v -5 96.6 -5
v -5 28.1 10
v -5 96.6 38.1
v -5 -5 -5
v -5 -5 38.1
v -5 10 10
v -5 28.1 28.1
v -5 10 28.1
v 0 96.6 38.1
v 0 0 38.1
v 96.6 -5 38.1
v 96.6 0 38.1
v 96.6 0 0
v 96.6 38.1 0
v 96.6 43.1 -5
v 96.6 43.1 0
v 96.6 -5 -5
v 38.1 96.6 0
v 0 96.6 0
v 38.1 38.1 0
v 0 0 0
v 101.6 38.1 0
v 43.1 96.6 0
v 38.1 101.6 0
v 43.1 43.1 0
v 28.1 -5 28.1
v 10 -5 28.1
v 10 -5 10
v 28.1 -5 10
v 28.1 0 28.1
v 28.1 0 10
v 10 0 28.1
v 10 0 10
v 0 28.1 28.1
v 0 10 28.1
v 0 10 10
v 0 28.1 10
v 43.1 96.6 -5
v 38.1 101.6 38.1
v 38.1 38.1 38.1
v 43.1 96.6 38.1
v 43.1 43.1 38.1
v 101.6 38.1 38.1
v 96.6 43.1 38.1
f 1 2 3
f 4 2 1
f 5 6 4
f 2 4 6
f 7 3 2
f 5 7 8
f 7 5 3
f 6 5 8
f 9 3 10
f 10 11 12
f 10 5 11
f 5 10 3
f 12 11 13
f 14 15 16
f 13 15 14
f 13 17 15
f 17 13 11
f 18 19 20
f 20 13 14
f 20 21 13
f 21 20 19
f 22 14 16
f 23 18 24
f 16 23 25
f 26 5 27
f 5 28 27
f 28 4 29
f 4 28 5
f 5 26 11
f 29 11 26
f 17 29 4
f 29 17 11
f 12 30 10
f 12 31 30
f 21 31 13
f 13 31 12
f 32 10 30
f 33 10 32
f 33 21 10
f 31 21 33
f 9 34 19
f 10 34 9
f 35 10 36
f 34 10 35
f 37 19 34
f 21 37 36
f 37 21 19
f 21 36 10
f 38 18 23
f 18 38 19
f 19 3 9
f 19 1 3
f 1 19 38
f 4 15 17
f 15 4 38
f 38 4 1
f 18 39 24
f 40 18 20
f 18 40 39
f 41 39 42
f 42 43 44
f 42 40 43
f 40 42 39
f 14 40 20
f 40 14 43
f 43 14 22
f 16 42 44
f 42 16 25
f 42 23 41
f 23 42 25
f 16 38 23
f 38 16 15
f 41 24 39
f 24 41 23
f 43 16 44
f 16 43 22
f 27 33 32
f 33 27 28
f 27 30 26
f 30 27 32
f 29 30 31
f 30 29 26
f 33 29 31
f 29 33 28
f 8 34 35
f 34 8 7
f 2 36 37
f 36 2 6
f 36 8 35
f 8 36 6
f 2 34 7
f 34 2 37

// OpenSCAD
e = 0.01;

l = 4 * 25.4;
h = 1.5 * 25.4;
t = 5;

w = 1.5 * 25.4;
r = 7;


difference() {
union() {
    translate([-t, -t, 0]) cube([l, t, h]);
    translate([-t, -t, 0]) cube([t, l, h]);
    translate([-t, -t, -t]) cube([l, l, t]);
    translate([w, w, 0]) cube([l-w, t, h]);
    translate([w, w, 0]) cube([t, l-w, h]);
}

translate([0, 0, -t-e]) linear_extrude(h + 10) polygon([[0, l + w], [l + w, 0], [l + w, l + w]]);
translate([10, -t-e, 10]) cube([w - 20, 2 * t, h - 20]);
translate([-t-e, 10, 10]) cube([2 * t, w - 20, h - 20]);

/*
translate([45, e, h/2 + 7]) rotate([90, 0, 0]) cylinder(2 * t, r, r);
translate([55, 500 + e, h/2 - 8]) rotate([90, 0, 0]) cylinder(2 * t + 1000, r, r);
translate([65, 500 + e, h/2 + 7]) rotate([90, 0, 0]) cylinder(2 * t + 1000, r, r);
translate([75, 500 + e, h/2 - 8]) rotate([90, 0, 0]) cylinder(2 * t + 1000, r, r);
translate([85, 500 + e, h/2 + 7]) rotate([90, 0, 0]) cylinder(2 * t + 1000, r, r);

translate([-t-e, 45, h/2 + 7]) rotate([0, 90, 0]) cylinder(2 * t, r, r);
translate([-t-e, 55, h/2 - 8]) rotate([0, 90, 0]) cylinder(2 * t + 1000, r, r);
translate([-t-e, 65, h/2 + 7]) rotate([0, 90, 0]) cylinder(2 * t + 1000, r, r);
translate([-t-e, 75, h/2 - 8]) rotate([0, 90, 0]) cylinder(2 * t + 1000, r, r);
translate([-t-e, 85, h/2 + 7]) rotate([0, 90, 0]) cylinder(2 * t + 1000, r, r);

translate([11, 80, -t-e]) cylinder(2 * t, r, r);
translate([26, 70, -t-e]) cylinder(2 * t, r, r);
translate([11, 60, -t-e]) cylinder(2 * t, r, r);
translate([26, 50, -t-e]) cylinder(2 * t, r, r);
translate([11, 40, -t-e]) cylinder(2 * t, r, r);
translate([26, 30, -t-e]) cylinder(2 * t, r, r);
translate([11, 20, -t-e]) cylinder(2 * t, r, r);
translate([26, 10, -t-e]) cylinder(2 * t, r, r);

translate([45, 26, -t-e]) cylinder(2 * t, r, r);
translate([55, 11, -t-e]) cylinder(2 * t, r, r);
translate([65, 26, -t-e]) cylinder(2 * t, r, r);
translate([75, 11, -t-e]) cylinder(2 * t, r, r);
translate([85, 26, -t-e]) cylinder(2 * t, r, r);
*/
}
